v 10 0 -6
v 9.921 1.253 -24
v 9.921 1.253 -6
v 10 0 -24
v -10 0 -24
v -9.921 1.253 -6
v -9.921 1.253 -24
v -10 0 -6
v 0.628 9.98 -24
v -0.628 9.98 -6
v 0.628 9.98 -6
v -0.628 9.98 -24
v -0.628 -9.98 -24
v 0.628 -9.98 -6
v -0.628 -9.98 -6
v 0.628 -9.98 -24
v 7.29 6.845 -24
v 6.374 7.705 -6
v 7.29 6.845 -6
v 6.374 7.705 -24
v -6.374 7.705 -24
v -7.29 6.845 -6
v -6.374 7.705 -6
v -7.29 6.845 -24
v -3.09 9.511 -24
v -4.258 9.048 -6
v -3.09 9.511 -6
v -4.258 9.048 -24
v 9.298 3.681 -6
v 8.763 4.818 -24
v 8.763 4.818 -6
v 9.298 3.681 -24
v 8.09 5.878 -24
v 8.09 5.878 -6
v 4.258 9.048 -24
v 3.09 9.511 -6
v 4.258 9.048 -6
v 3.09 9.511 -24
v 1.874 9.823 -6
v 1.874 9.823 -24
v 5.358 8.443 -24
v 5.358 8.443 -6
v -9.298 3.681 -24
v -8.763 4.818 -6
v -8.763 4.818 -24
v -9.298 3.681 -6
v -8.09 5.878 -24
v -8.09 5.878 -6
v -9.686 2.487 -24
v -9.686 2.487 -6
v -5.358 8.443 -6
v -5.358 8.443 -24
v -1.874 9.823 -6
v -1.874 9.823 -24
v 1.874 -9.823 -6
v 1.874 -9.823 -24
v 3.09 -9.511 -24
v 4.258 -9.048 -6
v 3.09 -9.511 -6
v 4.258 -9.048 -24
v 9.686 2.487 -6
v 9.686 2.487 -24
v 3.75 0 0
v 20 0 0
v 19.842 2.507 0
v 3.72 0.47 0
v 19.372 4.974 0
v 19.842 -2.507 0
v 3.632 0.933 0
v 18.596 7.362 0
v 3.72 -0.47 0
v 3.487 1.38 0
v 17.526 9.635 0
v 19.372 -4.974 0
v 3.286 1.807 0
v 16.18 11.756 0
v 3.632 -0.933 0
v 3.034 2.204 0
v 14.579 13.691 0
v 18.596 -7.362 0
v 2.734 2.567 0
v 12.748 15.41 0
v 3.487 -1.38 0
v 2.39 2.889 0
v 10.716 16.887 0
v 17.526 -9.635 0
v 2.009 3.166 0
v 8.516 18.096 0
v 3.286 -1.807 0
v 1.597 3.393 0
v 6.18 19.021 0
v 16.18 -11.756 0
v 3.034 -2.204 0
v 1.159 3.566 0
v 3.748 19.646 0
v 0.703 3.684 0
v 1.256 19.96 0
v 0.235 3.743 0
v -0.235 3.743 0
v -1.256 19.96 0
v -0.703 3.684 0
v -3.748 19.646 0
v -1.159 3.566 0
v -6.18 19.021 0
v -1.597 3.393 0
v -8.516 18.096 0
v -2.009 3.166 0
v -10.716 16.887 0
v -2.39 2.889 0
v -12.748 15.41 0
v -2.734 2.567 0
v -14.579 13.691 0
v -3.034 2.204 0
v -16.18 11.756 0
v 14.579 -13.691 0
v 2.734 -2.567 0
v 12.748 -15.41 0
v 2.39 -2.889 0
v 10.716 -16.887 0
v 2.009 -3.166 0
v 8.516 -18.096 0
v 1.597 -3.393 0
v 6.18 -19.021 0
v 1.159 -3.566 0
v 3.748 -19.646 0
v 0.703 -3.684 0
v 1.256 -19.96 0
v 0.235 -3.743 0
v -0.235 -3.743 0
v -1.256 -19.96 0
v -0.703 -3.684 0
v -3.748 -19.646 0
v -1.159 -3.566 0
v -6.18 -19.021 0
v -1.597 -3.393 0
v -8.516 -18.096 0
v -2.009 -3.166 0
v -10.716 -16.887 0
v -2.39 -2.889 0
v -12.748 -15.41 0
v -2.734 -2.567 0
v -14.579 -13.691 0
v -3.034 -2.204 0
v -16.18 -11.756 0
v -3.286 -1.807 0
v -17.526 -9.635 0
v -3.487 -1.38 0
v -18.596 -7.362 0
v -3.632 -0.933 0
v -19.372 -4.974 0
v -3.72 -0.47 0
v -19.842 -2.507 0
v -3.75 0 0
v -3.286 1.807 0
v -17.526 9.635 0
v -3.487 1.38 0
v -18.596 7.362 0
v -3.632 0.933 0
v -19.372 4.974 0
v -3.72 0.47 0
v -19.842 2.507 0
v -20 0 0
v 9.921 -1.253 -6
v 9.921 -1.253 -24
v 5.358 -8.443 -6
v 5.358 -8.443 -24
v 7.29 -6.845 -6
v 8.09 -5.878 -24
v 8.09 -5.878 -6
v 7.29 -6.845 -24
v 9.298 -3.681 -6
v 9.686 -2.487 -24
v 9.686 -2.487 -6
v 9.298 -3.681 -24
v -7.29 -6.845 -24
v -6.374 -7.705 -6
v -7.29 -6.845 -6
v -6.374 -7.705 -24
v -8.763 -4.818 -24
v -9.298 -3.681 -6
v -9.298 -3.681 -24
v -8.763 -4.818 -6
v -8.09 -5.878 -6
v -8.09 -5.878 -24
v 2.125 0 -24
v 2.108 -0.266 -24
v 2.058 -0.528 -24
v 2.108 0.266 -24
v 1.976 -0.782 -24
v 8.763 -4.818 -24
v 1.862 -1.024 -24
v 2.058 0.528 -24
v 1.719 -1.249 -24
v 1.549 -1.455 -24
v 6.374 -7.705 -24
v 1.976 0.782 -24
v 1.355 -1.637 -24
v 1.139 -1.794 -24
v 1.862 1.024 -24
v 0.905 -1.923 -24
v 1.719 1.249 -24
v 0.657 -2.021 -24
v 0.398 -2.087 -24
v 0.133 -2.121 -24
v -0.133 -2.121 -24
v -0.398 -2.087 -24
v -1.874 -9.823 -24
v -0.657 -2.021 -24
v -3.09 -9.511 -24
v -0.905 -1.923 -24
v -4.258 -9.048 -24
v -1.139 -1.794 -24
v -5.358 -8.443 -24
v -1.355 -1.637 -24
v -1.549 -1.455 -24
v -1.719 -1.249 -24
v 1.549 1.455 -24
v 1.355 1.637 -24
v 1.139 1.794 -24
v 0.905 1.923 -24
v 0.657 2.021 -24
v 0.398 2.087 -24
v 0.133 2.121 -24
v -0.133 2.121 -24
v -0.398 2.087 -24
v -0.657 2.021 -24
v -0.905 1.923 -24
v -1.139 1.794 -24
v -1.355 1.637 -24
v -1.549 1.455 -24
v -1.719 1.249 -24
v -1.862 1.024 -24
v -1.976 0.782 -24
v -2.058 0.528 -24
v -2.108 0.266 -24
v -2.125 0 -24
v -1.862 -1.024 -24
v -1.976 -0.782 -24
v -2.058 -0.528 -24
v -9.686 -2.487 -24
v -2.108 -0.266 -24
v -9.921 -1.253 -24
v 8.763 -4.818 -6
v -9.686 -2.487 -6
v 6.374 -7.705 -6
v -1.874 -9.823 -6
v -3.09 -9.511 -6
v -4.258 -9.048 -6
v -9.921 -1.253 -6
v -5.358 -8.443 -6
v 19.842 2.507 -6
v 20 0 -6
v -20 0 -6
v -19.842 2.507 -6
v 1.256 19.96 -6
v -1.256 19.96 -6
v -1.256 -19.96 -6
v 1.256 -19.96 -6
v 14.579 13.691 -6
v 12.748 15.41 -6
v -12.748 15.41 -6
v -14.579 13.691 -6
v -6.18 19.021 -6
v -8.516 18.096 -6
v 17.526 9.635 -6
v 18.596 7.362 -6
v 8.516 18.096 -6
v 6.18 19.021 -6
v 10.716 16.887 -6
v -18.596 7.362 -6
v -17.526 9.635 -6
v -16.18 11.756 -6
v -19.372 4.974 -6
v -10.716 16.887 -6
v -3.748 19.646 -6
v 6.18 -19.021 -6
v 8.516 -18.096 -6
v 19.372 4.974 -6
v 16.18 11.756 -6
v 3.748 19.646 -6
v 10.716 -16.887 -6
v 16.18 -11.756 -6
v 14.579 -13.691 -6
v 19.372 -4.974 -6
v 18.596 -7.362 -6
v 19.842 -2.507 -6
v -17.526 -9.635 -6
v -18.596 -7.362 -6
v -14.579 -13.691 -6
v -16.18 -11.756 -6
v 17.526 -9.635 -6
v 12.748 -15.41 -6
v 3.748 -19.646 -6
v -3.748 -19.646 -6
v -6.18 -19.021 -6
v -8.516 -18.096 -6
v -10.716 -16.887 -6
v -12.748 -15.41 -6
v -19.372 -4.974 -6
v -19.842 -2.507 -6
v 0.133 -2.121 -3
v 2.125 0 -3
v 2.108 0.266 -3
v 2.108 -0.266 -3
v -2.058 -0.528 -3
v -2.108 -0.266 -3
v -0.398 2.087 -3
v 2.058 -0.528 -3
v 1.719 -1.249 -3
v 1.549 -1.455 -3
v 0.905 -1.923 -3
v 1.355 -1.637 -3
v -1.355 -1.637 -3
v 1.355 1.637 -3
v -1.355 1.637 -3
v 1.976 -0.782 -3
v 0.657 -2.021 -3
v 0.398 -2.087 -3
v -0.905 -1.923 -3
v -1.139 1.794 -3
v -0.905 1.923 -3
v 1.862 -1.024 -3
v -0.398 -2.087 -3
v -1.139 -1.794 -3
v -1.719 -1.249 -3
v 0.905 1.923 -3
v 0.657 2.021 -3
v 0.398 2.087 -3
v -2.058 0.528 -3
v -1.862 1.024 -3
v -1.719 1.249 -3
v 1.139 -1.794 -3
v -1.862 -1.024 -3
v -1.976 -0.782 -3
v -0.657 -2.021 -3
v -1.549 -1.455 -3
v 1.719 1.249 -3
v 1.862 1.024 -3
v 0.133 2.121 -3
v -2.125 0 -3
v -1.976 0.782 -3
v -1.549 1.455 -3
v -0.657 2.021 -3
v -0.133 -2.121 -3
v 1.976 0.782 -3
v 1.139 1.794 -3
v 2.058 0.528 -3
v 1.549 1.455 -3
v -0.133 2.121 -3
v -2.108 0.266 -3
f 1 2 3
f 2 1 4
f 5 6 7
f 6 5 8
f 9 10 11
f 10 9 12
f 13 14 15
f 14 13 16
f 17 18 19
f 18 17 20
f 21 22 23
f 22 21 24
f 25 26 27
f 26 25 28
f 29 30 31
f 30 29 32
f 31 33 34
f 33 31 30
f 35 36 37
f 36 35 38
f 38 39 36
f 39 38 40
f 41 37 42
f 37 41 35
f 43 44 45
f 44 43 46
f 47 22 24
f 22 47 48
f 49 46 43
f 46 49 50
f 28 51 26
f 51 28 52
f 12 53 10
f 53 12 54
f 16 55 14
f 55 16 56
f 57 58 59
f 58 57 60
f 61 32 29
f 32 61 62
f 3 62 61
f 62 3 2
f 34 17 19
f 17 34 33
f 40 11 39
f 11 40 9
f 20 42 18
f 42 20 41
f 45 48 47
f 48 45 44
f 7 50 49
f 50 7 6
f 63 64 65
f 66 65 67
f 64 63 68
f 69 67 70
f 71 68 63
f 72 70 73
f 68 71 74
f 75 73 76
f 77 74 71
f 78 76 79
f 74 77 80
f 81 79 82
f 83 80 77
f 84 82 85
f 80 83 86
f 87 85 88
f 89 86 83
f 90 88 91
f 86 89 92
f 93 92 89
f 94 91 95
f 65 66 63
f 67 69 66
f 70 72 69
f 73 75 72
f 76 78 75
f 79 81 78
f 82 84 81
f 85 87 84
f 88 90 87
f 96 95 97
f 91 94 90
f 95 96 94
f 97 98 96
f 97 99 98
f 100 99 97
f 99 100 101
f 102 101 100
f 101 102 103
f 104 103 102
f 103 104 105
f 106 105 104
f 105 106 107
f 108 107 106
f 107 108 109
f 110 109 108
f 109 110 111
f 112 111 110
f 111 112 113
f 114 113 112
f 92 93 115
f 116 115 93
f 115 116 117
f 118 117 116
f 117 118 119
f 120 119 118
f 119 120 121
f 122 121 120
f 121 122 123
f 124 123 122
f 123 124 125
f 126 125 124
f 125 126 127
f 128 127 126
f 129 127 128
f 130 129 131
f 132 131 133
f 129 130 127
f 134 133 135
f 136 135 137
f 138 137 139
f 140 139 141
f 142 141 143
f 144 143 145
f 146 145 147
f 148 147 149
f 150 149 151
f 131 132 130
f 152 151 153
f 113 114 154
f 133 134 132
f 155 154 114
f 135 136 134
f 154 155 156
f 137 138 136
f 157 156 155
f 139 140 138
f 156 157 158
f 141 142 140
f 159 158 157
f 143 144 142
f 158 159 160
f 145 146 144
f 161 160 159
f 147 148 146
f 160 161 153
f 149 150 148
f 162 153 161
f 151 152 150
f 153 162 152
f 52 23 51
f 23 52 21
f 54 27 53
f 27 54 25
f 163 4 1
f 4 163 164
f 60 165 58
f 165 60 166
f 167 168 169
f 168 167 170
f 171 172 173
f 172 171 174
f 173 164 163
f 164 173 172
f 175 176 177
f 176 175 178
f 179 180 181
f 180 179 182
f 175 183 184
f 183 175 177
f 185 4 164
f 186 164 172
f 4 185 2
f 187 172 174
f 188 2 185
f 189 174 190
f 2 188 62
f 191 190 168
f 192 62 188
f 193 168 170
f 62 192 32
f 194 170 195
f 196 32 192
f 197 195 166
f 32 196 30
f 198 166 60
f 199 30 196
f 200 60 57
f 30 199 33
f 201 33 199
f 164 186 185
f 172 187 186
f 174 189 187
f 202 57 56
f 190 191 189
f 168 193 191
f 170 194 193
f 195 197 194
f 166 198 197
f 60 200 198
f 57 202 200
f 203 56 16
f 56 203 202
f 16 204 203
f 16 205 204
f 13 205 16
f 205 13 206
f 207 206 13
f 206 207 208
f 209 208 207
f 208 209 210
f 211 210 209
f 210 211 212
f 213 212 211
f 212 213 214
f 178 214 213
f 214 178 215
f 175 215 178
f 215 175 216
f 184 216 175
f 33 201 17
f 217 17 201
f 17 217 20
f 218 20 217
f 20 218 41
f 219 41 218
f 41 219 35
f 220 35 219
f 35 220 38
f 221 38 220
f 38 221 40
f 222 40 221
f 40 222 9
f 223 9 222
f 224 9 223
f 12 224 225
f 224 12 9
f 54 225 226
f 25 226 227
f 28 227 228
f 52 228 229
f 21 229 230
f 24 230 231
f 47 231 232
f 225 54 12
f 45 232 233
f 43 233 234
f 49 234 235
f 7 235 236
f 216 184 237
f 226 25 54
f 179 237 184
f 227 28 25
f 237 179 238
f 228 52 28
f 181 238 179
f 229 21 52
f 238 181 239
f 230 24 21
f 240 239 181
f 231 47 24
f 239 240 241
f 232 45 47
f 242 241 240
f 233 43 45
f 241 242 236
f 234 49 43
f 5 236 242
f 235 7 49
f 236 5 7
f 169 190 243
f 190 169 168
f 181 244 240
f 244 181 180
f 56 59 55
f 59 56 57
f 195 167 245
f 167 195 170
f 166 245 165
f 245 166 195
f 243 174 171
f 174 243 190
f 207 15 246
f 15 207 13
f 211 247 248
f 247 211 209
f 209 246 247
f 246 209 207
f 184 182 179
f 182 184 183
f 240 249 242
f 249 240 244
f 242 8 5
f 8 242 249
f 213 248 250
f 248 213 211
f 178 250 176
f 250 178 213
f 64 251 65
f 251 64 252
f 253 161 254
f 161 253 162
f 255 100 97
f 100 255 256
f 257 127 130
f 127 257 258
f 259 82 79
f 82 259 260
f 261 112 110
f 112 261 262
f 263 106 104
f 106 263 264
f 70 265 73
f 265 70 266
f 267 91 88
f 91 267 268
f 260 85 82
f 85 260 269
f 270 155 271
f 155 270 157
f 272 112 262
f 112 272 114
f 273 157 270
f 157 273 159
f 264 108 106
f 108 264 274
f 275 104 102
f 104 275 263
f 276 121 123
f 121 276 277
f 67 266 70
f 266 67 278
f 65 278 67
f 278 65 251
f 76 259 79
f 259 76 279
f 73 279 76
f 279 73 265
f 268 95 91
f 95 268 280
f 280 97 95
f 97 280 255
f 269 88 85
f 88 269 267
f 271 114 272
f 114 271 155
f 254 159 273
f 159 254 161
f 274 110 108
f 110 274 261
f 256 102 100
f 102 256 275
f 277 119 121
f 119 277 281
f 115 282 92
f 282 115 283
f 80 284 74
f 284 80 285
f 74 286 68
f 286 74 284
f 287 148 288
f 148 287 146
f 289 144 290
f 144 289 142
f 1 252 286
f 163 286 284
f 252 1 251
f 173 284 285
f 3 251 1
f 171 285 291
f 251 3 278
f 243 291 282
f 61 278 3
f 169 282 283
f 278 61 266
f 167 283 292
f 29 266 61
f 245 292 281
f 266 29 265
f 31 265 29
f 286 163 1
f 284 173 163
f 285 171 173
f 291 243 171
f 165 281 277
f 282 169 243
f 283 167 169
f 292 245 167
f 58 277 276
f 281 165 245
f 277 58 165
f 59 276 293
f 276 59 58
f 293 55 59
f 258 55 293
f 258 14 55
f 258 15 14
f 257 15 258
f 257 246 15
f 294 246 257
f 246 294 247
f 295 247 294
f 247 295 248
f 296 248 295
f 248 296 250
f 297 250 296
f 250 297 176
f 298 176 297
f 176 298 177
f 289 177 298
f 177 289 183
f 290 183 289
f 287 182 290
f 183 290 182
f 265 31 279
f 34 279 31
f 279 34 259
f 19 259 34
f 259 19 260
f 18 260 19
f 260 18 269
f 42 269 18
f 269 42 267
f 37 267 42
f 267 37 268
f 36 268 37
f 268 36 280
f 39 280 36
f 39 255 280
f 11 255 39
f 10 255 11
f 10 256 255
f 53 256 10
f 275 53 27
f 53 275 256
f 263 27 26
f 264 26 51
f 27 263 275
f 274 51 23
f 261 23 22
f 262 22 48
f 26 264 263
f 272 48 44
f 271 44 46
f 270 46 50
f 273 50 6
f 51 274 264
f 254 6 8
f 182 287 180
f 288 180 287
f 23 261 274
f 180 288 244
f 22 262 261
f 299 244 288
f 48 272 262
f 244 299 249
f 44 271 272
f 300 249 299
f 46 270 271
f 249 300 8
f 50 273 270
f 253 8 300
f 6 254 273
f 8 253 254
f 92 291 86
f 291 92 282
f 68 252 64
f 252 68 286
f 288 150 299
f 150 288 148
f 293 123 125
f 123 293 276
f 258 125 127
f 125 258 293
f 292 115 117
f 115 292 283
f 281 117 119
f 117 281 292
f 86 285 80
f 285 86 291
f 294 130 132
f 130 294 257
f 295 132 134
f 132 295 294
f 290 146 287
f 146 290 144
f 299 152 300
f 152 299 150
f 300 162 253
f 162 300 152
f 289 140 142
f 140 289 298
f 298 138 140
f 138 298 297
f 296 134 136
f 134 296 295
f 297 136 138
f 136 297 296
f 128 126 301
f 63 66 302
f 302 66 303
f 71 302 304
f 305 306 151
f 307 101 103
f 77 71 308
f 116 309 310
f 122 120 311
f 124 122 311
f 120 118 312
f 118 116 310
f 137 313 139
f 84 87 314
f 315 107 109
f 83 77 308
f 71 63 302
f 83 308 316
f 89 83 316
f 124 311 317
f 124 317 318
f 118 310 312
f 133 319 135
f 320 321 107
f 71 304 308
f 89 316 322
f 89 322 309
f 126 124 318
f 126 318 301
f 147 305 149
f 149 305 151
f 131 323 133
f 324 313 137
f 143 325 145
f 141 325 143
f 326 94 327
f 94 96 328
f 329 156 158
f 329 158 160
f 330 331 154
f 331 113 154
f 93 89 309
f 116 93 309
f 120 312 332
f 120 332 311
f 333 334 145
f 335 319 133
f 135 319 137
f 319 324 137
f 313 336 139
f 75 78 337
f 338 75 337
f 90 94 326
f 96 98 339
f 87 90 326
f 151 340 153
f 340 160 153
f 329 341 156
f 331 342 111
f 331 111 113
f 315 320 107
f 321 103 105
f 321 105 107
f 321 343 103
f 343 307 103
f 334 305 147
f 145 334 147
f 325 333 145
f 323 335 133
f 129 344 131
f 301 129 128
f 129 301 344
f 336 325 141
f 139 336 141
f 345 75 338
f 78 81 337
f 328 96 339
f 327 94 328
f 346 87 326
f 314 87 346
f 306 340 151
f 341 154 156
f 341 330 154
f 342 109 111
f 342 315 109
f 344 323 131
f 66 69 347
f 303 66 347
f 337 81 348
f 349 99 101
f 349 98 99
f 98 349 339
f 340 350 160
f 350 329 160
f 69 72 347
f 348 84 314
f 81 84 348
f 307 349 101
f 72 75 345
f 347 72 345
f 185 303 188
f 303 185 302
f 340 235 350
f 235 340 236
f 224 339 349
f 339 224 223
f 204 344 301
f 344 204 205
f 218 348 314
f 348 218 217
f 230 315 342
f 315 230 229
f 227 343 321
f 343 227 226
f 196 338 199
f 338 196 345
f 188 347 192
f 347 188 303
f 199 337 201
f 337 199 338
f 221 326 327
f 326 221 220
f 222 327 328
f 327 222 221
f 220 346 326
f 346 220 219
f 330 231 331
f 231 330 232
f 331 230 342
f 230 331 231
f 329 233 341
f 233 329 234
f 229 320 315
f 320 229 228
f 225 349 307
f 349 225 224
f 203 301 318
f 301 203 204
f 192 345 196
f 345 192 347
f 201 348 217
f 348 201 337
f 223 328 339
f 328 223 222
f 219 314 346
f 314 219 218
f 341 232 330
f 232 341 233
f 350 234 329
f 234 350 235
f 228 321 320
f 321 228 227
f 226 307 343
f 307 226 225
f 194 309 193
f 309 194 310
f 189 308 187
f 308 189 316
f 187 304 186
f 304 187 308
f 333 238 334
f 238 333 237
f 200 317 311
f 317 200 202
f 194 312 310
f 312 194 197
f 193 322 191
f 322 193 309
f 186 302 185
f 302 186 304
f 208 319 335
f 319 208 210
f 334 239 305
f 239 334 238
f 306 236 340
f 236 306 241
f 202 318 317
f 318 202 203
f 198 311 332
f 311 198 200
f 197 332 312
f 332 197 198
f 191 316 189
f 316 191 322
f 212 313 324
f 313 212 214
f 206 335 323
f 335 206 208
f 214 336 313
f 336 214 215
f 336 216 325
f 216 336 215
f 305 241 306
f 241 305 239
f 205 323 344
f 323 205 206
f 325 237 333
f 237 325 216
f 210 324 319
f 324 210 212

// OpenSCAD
$fn = 50;


difference() {
	union() {
		translate(v = [0, 0, -24.0000000000]) {
			cylinder(h = 24, r = 10.0000000000);
		}
		translate(v = [0, 0, -6.0000000000]) {
			cylinder(h = 6, r = 20.0000000000);
		}
	}
	union() {
		translate(v = [0, 0, 0]) {
			rotate(a = [0, 0, 0]) {
				difference() {
					union() {
						#translate(v = [0, 0, -24.0000000000]) {
							cylinder(h = 24, r = 2.0000000000);
						}
						#translate(v = [0, 0, -3]) {
							cylinder(h = 3, r1 = 2.1250000000, r2 = 3.7500000000);
						}
						#translate(v = [0, 0, -24.0000000000]) {
							cylinder(h = 24, r = 2.1250000000);
						}
						#translate(v = [0, 0, -24.0000000000]) {
							cylinder(h = 24, r = 2.0000000000);
						}
					}
					union();
				}
			}
		}
	}
}
